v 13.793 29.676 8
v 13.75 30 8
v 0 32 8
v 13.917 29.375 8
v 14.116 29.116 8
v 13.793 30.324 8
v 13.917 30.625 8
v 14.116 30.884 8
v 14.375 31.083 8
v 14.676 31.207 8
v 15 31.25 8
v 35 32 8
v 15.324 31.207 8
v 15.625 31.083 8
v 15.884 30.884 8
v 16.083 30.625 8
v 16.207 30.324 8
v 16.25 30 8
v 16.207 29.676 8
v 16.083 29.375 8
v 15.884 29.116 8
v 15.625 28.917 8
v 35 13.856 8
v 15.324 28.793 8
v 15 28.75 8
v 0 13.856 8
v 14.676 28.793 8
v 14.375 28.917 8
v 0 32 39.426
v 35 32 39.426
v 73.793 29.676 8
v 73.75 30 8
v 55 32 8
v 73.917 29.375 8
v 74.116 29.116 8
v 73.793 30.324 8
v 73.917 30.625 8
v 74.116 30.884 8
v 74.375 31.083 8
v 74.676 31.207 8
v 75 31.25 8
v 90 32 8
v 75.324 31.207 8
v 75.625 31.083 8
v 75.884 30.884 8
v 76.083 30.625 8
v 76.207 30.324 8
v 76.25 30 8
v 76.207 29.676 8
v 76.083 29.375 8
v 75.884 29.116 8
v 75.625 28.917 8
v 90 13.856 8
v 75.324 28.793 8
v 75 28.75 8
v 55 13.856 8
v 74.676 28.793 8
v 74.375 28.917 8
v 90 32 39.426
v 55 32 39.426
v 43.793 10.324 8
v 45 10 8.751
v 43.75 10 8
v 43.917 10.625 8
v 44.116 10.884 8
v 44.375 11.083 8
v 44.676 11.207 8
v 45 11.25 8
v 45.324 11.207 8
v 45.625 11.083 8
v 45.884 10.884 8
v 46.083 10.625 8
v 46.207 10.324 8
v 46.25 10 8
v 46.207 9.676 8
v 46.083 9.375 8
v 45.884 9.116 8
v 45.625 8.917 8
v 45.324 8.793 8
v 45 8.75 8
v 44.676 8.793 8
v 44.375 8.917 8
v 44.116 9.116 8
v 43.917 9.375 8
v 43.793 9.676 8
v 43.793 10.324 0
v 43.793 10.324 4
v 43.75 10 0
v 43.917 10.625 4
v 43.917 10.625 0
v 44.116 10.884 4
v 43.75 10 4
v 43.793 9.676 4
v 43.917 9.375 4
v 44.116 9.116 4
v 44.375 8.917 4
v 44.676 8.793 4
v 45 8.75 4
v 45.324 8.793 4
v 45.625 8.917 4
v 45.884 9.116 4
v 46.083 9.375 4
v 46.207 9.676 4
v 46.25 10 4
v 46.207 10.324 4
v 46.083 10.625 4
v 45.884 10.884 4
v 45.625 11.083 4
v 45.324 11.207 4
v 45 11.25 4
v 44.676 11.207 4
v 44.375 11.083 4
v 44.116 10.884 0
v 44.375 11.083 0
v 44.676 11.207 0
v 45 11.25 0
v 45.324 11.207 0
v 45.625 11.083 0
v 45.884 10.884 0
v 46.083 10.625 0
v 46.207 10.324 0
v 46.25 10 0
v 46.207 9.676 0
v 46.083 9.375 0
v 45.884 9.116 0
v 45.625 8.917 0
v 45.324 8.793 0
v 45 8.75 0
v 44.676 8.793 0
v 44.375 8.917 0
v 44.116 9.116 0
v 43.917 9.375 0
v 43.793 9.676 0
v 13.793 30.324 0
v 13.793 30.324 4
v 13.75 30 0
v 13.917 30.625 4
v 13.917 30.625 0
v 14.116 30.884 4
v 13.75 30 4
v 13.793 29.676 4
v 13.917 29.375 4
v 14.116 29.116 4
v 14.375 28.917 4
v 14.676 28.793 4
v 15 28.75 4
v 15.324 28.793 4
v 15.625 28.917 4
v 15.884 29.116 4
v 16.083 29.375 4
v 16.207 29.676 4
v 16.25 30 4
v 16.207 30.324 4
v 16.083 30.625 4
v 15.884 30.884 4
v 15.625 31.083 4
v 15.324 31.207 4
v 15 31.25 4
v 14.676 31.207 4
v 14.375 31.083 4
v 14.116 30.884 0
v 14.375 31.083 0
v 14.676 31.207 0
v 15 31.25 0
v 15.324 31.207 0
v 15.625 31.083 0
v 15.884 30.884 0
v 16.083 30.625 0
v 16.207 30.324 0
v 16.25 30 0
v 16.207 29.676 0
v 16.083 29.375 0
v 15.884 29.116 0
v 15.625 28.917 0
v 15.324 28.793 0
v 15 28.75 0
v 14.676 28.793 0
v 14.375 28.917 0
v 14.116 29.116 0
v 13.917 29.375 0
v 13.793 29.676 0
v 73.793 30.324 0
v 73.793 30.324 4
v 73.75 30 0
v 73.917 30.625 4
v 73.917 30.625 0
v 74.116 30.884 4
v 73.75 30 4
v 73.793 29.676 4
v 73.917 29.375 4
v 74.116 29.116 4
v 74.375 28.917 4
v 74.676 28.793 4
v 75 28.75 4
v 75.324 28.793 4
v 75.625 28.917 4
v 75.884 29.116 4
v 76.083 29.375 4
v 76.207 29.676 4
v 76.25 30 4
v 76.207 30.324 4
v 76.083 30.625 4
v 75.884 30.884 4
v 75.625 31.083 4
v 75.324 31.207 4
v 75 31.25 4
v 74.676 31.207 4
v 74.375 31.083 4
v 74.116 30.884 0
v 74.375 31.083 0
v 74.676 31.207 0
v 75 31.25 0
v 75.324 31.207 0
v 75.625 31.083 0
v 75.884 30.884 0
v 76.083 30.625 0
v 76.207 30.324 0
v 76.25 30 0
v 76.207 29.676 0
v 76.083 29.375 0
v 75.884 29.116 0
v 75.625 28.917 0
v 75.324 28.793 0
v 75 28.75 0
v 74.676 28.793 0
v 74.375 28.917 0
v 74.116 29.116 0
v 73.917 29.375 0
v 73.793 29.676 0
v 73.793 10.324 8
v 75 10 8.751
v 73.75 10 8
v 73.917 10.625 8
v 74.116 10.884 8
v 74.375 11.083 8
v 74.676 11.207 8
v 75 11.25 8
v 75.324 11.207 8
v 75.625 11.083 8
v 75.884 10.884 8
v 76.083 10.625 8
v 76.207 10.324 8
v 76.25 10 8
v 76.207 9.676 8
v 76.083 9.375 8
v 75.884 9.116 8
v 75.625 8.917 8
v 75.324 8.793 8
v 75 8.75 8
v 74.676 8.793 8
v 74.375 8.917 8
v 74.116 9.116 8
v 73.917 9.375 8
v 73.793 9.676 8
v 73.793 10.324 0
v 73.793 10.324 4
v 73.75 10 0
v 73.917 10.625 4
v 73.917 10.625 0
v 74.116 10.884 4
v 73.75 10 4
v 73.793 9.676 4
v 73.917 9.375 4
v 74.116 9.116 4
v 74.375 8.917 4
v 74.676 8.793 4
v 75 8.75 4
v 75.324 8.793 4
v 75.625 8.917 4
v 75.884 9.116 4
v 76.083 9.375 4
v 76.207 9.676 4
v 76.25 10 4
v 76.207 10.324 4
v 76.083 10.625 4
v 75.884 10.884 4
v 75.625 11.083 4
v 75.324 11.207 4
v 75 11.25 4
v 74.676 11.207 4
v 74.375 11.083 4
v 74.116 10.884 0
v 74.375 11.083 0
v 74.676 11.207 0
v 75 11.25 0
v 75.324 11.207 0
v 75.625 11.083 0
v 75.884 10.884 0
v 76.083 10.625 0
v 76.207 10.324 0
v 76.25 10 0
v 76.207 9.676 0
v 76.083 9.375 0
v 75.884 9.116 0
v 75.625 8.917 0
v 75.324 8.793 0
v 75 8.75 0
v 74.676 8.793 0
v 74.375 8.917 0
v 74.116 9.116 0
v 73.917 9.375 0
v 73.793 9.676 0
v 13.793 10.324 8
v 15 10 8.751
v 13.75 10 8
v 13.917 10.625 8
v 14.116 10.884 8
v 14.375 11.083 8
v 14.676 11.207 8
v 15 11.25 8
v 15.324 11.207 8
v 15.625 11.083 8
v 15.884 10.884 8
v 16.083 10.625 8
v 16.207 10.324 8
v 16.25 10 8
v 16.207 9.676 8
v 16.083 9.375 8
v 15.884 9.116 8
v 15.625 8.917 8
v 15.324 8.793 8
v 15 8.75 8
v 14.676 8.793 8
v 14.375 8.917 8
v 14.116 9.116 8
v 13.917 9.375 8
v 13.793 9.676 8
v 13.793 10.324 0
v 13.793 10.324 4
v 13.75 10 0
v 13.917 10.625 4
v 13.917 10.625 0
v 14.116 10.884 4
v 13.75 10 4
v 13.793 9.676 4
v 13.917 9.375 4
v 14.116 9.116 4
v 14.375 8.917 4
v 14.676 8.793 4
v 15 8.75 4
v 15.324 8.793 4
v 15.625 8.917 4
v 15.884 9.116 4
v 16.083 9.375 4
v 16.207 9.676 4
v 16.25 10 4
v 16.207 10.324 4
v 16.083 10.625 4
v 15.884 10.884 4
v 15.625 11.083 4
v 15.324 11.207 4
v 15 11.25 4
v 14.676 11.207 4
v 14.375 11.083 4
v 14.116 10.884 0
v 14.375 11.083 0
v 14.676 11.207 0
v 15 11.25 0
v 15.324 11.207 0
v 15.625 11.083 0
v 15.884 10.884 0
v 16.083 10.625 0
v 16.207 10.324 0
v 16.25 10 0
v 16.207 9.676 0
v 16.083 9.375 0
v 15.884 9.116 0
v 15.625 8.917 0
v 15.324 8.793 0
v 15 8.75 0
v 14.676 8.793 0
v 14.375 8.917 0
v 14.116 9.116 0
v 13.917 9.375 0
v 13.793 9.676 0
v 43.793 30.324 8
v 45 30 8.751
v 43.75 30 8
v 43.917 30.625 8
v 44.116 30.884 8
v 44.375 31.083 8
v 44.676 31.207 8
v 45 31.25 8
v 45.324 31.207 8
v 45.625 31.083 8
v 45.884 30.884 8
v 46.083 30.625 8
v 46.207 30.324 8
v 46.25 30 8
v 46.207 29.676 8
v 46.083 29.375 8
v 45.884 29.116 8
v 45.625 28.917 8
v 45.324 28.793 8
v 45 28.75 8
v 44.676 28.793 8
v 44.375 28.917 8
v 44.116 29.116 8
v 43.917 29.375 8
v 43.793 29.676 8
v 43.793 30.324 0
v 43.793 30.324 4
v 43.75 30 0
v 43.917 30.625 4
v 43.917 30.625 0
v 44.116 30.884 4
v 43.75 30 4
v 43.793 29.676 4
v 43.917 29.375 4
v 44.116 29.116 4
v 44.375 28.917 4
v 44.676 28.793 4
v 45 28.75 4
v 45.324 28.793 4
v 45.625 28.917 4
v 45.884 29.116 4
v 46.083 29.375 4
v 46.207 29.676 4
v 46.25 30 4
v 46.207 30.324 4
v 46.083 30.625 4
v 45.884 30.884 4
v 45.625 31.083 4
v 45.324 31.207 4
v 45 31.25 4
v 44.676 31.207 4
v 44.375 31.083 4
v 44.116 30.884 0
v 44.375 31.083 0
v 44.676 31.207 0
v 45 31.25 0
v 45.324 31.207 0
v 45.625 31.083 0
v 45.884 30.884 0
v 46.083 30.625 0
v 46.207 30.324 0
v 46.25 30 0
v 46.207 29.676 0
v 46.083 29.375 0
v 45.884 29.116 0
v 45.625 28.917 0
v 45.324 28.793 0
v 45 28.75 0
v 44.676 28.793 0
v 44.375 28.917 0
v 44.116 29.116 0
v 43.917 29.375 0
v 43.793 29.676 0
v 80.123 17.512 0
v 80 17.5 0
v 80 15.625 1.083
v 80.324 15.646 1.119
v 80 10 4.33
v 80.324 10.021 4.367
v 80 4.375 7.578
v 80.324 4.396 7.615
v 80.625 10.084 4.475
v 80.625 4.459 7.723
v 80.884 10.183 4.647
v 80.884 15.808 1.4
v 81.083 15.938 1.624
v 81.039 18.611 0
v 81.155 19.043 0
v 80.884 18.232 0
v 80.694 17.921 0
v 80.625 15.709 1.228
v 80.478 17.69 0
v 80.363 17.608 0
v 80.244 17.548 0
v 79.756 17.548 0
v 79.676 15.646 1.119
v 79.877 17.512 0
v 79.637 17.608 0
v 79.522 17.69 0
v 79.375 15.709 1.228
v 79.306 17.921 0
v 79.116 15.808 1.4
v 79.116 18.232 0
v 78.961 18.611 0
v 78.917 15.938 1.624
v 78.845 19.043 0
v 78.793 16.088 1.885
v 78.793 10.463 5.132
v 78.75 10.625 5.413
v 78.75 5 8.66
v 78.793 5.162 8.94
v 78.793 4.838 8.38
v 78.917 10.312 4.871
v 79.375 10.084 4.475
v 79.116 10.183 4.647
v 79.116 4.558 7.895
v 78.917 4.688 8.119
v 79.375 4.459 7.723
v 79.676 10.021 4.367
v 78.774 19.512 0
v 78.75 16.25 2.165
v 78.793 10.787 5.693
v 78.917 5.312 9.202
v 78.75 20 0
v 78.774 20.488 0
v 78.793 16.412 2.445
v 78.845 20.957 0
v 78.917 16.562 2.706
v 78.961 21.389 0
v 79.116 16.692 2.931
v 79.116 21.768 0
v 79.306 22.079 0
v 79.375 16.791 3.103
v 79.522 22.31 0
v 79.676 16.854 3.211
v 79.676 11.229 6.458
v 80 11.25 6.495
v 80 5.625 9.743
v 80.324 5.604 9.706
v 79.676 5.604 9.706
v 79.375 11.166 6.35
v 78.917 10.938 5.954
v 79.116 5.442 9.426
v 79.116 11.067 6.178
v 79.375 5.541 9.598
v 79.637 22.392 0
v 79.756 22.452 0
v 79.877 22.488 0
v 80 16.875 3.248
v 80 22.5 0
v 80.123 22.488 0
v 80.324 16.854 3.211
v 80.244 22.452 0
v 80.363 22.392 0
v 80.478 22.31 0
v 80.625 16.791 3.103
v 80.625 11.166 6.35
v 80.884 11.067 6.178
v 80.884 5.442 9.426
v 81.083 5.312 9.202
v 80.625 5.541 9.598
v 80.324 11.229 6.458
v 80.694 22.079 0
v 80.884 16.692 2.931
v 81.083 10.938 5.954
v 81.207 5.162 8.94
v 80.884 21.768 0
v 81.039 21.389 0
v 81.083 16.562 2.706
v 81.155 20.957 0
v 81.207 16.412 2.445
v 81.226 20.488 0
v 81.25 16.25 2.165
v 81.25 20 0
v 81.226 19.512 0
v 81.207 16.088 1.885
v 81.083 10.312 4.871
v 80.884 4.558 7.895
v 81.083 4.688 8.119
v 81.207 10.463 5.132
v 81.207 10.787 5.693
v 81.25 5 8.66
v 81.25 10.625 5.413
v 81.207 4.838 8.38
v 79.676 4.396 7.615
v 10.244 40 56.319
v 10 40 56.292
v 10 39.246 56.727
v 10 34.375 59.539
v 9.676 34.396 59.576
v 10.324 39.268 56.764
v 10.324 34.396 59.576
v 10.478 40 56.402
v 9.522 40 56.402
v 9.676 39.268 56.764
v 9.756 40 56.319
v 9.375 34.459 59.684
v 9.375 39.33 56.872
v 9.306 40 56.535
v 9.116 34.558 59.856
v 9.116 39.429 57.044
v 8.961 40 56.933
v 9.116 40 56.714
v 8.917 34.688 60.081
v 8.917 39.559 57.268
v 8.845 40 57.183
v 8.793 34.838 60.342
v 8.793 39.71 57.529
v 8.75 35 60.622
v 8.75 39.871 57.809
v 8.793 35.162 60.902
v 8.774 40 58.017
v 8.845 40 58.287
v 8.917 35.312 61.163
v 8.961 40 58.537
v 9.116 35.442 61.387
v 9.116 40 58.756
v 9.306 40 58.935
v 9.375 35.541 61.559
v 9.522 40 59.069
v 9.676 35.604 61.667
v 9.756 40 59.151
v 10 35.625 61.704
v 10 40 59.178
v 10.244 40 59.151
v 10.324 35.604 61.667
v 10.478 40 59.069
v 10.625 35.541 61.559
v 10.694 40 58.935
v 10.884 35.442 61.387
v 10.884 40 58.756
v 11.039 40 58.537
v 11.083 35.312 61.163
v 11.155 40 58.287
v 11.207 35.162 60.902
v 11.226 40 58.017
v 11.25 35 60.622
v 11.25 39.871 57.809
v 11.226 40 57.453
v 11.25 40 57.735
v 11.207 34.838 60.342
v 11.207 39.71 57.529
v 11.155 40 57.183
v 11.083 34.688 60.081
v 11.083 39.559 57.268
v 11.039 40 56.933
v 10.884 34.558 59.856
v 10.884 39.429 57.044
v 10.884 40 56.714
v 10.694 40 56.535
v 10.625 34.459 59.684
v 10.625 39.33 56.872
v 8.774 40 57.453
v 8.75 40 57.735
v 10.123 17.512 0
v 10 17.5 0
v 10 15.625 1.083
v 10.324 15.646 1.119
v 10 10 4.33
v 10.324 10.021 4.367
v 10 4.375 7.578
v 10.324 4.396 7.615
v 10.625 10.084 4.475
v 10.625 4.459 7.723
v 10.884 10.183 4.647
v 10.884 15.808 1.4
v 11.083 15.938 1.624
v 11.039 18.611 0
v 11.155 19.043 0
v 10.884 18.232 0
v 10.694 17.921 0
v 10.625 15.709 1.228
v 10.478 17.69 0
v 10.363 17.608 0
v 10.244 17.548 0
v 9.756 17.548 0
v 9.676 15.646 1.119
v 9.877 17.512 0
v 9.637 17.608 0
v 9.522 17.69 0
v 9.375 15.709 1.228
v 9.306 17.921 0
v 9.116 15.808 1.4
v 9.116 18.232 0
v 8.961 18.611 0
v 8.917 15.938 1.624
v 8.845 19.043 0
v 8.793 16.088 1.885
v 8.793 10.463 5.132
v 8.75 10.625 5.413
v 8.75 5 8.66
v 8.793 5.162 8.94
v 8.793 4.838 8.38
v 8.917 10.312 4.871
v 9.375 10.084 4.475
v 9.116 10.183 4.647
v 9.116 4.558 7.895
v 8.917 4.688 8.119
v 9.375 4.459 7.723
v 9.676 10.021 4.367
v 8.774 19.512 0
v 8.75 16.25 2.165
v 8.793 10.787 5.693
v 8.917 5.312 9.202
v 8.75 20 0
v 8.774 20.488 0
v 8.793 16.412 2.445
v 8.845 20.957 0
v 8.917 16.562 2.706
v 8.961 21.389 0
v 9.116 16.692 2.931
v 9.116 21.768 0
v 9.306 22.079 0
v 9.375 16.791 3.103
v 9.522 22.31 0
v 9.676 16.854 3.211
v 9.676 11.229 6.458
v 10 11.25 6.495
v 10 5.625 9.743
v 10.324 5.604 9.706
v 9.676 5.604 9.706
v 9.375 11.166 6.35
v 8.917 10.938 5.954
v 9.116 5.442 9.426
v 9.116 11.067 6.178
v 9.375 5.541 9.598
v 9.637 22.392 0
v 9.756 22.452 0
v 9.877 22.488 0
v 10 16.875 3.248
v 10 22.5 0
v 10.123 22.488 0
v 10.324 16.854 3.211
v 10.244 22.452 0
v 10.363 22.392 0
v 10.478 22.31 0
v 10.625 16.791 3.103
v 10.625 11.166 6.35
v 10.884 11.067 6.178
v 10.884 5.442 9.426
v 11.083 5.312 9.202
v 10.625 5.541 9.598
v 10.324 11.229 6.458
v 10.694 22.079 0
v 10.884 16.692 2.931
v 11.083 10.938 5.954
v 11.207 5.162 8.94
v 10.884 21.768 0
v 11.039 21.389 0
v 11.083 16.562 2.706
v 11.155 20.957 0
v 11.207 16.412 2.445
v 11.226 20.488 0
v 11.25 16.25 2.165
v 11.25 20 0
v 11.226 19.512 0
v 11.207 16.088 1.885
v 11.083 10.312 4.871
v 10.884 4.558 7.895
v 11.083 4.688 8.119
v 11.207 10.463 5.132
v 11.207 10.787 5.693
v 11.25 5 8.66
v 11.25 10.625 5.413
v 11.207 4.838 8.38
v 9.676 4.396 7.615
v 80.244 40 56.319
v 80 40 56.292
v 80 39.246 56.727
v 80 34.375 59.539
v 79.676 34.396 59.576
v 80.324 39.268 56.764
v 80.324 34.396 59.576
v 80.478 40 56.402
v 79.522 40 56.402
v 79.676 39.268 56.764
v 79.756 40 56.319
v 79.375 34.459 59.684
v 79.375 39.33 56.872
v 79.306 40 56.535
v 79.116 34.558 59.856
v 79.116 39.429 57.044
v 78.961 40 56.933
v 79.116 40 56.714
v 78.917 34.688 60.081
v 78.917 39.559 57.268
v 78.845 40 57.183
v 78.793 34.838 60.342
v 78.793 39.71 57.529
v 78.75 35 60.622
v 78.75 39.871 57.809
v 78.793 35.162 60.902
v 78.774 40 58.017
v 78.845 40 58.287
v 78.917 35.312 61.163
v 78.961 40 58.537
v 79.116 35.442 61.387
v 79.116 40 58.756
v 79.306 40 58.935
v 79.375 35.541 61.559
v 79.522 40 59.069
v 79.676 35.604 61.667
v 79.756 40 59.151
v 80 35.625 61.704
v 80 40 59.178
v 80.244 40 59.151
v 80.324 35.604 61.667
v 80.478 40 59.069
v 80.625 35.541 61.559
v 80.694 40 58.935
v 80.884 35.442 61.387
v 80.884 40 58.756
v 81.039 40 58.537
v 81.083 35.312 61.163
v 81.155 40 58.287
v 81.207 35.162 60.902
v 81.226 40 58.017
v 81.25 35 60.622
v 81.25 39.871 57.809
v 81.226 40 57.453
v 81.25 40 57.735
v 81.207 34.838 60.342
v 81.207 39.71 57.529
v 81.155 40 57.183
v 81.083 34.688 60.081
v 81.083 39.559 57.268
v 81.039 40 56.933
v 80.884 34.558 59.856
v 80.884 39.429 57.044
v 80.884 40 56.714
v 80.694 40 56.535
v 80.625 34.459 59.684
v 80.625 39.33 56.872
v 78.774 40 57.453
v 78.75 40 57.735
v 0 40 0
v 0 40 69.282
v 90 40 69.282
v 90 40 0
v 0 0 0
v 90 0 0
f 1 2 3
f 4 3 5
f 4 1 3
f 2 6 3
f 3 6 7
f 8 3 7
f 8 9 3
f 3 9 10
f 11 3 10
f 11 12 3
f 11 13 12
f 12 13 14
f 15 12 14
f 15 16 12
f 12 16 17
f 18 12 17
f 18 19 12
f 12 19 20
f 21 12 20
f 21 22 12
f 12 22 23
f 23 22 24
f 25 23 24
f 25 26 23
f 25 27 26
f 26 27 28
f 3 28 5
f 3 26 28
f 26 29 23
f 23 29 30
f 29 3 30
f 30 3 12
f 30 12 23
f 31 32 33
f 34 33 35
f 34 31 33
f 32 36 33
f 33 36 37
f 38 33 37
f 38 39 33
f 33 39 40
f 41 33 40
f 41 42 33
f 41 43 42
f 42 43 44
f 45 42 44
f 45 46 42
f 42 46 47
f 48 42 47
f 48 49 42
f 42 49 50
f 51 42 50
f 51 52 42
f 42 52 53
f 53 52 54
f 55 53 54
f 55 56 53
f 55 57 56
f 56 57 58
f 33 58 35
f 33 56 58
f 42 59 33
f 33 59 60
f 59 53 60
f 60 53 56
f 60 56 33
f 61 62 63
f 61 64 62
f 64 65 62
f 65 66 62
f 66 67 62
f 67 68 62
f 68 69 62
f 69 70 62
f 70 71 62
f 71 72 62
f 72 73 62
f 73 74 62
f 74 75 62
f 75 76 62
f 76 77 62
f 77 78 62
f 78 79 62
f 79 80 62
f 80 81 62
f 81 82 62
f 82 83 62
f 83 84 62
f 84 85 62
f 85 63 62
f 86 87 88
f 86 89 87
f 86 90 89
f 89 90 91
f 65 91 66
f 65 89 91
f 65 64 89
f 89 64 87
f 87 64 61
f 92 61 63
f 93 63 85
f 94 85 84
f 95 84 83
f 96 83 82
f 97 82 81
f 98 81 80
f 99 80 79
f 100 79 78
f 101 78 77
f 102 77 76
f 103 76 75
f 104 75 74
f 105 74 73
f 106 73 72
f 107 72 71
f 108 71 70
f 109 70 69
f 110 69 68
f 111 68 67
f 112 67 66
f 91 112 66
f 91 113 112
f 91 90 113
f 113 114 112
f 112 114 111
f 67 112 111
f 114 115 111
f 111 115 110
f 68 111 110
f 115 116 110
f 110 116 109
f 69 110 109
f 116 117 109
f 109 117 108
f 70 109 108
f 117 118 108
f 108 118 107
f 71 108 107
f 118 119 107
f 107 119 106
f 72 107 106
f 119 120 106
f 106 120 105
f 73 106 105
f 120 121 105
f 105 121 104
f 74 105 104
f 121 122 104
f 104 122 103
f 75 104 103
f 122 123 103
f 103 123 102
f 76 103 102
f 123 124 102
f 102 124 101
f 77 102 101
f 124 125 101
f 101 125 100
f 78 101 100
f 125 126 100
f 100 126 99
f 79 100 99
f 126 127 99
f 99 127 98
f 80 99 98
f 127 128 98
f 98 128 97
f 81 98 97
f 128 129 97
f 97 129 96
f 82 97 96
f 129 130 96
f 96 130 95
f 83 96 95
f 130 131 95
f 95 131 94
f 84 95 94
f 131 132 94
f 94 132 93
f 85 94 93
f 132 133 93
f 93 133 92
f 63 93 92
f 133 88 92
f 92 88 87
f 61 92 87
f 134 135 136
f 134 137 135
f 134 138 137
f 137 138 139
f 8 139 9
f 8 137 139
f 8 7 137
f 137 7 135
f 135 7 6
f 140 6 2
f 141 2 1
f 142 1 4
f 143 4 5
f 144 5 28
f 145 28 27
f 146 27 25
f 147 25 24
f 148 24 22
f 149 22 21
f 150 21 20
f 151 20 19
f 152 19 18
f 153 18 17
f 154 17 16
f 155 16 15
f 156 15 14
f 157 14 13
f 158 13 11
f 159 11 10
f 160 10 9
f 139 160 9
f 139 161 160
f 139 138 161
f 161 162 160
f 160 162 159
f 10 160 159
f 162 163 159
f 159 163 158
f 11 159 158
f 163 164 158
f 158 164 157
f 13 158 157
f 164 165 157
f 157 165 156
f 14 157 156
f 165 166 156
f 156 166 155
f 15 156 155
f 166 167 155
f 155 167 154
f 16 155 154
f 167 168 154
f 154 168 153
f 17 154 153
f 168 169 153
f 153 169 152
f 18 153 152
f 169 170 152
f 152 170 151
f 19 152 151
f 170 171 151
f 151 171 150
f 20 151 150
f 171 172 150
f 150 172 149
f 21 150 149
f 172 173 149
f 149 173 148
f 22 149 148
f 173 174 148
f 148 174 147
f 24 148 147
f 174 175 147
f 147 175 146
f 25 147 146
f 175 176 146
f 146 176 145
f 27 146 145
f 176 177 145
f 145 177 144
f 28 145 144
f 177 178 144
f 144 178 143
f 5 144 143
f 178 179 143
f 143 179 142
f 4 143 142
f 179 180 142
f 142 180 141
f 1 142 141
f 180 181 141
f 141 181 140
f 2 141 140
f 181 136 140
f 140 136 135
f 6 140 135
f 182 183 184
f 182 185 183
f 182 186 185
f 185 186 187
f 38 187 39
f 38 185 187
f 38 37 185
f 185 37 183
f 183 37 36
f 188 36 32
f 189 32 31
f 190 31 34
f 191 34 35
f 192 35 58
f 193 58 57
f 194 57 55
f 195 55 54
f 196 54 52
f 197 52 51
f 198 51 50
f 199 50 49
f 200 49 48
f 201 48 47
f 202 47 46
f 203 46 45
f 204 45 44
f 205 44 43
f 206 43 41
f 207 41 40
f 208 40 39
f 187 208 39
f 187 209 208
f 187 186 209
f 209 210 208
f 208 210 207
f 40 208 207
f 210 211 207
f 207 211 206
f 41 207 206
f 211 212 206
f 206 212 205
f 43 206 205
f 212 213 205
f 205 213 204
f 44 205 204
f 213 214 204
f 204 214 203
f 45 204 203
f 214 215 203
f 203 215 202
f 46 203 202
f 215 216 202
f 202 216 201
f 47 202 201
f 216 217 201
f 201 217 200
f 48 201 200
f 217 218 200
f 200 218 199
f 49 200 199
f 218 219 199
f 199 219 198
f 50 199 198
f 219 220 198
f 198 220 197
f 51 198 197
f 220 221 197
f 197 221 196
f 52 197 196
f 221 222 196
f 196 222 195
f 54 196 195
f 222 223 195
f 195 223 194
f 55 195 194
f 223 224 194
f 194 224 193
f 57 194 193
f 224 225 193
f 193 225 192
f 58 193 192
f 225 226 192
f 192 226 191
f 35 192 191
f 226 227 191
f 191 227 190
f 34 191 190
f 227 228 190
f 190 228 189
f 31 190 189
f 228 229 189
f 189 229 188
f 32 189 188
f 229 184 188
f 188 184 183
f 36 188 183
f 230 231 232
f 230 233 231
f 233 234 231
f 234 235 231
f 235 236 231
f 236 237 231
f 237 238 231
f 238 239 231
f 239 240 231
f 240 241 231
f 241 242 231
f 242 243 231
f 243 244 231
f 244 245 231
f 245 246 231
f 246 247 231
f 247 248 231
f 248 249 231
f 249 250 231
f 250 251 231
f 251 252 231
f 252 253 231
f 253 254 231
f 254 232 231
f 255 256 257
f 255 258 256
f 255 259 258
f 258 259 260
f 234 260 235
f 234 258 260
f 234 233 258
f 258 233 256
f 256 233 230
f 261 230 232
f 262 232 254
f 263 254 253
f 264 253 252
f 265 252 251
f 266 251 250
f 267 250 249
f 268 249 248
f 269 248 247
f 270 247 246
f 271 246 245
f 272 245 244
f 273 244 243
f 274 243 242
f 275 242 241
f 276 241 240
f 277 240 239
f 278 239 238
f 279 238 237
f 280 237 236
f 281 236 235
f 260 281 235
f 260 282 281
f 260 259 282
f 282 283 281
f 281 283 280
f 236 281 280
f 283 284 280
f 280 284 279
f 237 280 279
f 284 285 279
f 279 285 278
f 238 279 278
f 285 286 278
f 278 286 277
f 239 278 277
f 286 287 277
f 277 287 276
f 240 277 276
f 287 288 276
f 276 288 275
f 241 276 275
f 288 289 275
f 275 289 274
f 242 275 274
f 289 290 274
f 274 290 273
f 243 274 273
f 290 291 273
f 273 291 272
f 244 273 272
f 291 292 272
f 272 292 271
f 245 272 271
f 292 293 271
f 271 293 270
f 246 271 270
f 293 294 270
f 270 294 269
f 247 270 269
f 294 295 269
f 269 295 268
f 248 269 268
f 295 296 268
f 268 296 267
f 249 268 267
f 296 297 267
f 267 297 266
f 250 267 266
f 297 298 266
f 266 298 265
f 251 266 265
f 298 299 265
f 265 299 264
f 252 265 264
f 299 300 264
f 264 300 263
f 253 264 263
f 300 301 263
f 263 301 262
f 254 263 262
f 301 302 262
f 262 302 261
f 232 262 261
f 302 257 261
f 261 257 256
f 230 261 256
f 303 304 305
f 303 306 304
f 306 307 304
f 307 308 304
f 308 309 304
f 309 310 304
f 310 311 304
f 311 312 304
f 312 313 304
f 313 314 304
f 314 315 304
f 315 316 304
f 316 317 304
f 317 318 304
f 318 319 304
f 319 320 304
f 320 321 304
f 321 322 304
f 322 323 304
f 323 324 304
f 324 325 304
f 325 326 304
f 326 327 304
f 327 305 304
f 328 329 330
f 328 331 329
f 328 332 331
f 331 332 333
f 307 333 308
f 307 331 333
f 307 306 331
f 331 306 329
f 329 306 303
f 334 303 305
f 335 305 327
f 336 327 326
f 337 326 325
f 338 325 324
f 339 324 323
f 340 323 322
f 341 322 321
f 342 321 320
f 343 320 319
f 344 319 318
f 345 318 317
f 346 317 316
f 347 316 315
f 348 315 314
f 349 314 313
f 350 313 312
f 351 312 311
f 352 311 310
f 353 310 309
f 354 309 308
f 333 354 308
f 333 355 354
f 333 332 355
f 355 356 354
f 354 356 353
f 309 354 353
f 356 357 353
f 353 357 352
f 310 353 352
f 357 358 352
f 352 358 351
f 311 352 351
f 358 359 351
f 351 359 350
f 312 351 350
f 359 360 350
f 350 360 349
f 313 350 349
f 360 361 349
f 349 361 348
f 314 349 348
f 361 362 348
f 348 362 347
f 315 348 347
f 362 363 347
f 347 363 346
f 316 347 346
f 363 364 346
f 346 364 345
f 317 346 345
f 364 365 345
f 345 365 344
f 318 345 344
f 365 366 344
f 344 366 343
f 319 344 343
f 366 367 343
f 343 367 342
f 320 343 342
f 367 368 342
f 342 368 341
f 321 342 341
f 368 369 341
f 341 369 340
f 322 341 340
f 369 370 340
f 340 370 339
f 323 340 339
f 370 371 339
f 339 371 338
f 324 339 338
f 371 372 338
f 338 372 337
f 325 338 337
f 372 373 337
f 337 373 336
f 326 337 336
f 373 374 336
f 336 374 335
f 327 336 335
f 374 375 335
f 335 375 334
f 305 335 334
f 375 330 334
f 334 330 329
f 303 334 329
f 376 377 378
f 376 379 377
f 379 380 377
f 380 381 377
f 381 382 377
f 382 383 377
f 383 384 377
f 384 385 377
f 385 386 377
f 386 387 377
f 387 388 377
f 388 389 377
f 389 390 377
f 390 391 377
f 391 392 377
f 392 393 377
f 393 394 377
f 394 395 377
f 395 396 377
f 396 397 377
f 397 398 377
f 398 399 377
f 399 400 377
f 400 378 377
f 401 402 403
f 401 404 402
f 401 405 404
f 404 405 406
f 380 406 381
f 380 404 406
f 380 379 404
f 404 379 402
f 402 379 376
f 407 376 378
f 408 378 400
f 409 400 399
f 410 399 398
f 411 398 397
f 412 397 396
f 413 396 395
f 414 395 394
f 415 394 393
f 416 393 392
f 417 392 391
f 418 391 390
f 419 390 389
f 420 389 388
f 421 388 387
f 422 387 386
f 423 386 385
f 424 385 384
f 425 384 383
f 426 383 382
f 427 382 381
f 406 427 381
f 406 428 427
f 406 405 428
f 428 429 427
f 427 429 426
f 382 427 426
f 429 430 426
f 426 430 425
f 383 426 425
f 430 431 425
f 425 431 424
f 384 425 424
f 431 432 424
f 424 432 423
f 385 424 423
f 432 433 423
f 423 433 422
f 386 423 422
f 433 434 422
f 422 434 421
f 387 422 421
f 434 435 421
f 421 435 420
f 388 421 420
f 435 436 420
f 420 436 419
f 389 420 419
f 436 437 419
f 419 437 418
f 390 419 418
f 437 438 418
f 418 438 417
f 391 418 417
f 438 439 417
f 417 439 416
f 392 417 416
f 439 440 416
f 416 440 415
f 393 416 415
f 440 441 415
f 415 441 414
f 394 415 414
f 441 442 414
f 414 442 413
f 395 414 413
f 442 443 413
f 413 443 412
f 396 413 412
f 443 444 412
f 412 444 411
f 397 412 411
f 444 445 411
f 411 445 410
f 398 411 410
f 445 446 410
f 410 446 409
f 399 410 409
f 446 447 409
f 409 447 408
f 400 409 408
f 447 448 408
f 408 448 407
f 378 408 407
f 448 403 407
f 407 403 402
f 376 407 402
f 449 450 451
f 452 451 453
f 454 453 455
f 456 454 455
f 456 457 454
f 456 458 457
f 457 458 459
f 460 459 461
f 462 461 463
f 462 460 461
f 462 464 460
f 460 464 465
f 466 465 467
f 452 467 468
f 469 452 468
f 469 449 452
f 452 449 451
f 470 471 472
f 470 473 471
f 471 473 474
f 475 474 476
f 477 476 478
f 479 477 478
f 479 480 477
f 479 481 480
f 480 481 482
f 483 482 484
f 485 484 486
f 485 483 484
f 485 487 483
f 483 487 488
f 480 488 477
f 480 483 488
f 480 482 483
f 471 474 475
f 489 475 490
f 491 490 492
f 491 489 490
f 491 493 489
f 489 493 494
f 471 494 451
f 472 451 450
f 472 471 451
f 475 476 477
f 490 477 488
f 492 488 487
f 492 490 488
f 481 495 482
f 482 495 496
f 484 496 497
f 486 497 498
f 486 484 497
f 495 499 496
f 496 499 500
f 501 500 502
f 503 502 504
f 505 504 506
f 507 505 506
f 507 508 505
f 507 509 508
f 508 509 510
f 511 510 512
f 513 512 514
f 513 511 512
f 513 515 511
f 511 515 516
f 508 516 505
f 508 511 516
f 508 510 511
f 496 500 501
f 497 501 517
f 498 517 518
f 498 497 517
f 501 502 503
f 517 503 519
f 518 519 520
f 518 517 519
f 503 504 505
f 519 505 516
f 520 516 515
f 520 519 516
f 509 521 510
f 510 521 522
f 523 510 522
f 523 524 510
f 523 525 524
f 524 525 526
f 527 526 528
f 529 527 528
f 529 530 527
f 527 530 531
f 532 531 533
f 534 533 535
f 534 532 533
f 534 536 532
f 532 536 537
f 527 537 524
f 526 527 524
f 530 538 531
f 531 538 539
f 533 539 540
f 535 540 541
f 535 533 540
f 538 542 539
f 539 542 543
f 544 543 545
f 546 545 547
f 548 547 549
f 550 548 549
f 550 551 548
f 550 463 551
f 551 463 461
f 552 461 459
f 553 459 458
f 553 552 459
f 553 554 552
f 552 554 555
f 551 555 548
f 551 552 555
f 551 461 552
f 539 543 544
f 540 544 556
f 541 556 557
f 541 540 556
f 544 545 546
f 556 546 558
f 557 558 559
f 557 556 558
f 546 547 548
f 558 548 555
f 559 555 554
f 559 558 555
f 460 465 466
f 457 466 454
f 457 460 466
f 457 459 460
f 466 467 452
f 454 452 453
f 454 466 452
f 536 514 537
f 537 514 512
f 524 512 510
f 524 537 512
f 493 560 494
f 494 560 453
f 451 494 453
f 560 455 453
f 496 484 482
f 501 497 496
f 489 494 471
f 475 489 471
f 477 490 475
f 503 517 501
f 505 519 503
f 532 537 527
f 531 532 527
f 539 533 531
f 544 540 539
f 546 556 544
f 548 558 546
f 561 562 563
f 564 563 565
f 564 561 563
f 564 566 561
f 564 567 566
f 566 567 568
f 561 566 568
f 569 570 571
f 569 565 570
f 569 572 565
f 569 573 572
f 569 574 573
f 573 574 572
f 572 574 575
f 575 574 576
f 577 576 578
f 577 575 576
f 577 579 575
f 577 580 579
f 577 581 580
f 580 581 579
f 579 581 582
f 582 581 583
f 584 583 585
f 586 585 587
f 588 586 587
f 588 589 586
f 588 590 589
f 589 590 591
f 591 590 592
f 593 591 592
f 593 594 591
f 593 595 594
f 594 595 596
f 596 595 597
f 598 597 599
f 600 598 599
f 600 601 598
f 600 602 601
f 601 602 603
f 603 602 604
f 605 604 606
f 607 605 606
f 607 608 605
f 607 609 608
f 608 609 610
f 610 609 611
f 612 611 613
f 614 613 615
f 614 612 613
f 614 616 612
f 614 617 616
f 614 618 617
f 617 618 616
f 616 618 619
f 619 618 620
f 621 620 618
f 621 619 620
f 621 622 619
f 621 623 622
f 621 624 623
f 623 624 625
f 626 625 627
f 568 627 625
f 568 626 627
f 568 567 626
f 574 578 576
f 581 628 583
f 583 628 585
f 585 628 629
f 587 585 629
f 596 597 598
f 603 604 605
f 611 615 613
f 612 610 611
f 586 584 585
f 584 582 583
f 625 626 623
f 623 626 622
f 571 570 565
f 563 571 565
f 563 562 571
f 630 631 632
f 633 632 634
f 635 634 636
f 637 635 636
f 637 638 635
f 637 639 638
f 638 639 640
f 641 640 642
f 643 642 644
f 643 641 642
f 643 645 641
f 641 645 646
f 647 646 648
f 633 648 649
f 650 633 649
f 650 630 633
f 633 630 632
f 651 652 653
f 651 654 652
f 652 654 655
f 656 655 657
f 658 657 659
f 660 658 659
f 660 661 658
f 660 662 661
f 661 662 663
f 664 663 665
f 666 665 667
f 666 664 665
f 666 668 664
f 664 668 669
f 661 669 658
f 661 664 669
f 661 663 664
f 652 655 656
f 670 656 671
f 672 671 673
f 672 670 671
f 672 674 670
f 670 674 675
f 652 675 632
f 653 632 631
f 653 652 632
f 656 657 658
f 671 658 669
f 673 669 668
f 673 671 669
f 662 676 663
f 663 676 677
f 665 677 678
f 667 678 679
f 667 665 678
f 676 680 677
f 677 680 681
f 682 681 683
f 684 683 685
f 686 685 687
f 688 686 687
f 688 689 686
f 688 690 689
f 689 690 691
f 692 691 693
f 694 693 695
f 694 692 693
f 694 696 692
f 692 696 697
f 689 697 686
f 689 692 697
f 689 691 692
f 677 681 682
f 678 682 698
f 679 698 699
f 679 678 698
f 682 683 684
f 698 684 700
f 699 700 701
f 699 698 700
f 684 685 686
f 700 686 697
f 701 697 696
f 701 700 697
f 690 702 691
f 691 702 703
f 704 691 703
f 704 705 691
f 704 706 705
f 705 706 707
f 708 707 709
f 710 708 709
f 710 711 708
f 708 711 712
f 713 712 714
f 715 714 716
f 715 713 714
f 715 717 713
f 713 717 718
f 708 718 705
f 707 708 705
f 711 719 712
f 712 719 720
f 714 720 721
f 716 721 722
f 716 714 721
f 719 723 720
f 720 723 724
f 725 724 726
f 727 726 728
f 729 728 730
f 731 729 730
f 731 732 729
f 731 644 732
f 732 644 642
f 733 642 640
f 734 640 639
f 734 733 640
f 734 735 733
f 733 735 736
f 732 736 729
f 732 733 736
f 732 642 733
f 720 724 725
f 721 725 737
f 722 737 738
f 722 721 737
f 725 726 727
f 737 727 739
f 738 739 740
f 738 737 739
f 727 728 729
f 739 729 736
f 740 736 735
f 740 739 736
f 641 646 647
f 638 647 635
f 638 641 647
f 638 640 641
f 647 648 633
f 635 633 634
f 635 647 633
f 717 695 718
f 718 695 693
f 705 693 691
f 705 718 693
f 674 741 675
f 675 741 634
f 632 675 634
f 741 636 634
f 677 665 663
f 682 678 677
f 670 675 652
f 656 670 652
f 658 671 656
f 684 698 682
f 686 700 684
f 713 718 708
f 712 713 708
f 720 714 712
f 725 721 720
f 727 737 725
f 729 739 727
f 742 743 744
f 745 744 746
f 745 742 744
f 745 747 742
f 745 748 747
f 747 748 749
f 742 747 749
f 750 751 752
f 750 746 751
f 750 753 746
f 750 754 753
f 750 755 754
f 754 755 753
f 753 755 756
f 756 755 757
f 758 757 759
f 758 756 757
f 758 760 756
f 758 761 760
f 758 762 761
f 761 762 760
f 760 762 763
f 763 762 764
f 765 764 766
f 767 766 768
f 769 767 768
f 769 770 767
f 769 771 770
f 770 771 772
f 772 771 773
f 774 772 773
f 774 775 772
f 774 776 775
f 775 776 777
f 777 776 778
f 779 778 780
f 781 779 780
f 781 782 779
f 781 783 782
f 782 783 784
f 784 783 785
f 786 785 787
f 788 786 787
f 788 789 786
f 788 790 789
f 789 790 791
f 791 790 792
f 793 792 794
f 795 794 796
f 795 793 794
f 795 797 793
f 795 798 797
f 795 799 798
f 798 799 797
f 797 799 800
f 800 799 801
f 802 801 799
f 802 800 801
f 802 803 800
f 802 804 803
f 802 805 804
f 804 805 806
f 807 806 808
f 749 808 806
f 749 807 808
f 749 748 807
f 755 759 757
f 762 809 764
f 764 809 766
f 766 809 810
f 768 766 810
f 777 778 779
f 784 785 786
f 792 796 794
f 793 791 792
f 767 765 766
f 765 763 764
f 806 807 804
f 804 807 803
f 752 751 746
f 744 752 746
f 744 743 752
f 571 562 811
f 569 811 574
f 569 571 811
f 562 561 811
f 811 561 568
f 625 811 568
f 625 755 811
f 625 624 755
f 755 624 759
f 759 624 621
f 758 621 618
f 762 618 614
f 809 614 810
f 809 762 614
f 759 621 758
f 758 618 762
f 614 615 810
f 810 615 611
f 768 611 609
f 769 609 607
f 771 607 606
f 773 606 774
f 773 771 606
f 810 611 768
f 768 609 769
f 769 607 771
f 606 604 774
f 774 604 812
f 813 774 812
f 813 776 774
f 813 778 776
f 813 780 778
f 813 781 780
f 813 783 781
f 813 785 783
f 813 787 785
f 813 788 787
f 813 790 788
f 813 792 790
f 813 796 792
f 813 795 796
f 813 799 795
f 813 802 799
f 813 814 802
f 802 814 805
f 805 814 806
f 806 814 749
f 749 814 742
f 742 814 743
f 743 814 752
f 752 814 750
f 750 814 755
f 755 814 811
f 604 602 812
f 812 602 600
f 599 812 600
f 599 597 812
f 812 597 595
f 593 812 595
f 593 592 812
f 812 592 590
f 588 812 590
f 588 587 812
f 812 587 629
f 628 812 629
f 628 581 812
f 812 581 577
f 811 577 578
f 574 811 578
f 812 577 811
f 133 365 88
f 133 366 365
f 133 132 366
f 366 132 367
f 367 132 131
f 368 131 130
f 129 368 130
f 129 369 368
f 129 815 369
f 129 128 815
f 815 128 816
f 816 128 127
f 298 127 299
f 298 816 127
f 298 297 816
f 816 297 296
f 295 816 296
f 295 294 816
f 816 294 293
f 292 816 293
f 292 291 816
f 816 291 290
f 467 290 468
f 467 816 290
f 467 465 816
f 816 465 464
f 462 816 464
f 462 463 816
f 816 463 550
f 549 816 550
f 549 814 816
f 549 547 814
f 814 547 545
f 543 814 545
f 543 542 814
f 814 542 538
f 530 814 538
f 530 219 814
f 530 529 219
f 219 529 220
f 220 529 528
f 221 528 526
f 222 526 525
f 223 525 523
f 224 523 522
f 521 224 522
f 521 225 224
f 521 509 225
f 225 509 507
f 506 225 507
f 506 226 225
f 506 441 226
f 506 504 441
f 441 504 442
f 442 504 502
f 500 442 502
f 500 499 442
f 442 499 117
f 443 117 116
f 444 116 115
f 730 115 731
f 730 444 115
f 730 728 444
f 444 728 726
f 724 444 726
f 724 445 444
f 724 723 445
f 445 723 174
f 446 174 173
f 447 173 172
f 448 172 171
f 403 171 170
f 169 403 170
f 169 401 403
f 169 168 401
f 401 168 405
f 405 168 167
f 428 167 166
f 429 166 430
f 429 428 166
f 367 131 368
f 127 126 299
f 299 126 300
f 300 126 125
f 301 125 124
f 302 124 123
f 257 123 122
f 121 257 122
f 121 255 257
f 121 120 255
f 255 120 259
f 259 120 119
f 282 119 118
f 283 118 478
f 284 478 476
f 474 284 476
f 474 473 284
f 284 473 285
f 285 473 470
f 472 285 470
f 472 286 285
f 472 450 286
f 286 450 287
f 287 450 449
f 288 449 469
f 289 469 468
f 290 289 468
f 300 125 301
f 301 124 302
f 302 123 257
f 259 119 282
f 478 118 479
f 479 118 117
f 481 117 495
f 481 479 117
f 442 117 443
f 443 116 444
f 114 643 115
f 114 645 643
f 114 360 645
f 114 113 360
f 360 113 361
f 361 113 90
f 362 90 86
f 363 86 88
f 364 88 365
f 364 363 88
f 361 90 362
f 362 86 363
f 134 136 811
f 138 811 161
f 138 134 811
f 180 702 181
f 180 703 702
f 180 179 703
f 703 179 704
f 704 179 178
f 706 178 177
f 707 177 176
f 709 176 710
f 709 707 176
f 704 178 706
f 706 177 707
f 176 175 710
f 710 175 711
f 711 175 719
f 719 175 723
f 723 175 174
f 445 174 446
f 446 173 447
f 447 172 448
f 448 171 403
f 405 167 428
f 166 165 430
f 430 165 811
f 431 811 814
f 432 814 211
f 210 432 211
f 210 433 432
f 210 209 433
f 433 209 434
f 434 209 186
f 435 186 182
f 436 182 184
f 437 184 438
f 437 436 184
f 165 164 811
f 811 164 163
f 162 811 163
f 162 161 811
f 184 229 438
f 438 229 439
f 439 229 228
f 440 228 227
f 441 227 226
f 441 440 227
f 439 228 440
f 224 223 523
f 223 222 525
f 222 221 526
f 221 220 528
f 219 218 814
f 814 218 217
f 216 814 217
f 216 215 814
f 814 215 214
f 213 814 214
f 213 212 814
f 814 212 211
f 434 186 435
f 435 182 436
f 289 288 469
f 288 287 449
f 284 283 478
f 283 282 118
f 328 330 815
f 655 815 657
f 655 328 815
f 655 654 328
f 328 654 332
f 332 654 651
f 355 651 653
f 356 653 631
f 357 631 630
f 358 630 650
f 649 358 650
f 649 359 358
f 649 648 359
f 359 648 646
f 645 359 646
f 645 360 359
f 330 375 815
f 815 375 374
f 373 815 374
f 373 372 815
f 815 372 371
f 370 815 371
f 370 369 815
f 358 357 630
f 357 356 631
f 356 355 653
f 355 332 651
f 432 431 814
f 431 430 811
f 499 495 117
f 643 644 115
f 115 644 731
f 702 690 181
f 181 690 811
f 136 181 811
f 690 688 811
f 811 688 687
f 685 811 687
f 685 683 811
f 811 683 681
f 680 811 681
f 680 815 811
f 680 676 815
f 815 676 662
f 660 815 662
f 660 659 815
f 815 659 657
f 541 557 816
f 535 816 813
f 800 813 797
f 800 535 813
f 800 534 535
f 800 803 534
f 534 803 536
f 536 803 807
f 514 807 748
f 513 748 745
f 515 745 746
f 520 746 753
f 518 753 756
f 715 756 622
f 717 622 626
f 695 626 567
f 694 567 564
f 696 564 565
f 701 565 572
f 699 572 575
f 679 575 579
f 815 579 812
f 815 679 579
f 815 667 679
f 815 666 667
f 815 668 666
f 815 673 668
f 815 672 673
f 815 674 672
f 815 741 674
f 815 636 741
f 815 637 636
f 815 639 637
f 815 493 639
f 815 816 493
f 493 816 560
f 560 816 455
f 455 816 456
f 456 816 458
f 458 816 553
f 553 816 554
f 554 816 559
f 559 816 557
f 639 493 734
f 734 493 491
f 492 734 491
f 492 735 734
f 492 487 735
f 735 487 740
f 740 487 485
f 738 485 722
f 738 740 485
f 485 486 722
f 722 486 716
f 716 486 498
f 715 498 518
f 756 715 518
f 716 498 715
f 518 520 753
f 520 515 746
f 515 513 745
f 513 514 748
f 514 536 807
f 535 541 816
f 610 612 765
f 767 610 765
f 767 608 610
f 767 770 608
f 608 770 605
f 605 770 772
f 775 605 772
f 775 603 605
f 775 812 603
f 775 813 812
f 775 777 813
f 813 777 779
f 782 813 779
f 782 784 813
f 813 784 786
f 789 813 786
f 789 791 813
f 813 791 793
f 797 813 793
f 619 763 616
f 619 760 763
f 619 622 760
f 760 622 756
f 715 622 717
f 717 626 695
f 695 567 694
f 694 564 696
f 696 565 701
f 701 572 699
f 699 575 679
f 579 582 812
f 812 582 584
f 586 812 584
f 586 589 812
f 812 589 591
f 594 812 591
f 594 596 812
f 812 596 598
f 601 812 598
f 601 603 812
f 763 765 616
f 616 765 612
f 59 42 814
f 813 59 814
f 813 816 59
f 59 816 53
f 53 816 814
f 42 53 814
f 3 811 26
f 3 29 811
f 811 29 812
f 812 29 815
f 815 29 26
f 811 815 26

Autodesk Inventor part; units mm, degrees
ref_plane "YZ Plane" through (0, 0, 0) normal (1, 0, 0) x (0, 1, 0)
ref_plane "XZ Plane" through (0, 0, 0) normal (0, 1, 0) x (-1, 0, 0)
ref_plane "XY Plane" through (0, 0, 0) normal (0, 0, 1) x (1, 0, 0)
sketch "スケッチ1" plane through (0, 0, 0) normal (1, 0, 0) x (0, 1, 0)
  line L0 (0, 0) -> (40, 69.282)
  line L1 (0, 0) -> (80, 0) construction
  line L2 (40, 69.282) -> (40, 0)
  line L3 (40, 0) -> (0, 0)
  dimension "d0" = 80
  dimension "d1" = 60
  dimension "d2" = 30
extrude "押し出し1" add sketch "スケッチ1" along normal blind 90
sketch "スケッチ2" plane through (0, 0, 0) normal (0, -0.866, 0.5) x (1, 0, 0)
  line L0 (0, 80) -> (10, 80)
  line L1 (10, 80) -> (10, 70)
  line L2 (10, 70) -> (0, 70)
  line L3 (0, 70) -> (0, 80)
  line L4 (90, 80) -> (80, 80)
  line L5 (80, 80) -> (80, 70)
  line L6 (80, 70) -> (90, 70)
  line L7 (90, 70) -> (90, 80)
  line L8 (90, 0) -> (80, 0)
  line L9 (80, 0) -> (80, 10)
  line L10 (80, 10) -> (90, 10)
  line L11 (90, 10) -> (90, 0)
  line L12 (0, 0) -> (10, 0)
  line L13 (10, 0) -> (10, 10)
  line L14 (10, 10) -> (0, 10)
  line L15 (0, 10) -> (0, 0)
  dimension "d5" = 10
  dimension "d6" = 10
  dimension "d7" = 10
  dimension "d8" = 10
  dimension "d9" = 10
  dimension "d10" = 10
  dimension "d11" = 10
  dimension "d12" = 10
hole "穴1" at (10, 35, 60.6218) at (10, 5, 8.6603) at (80, 5, 8.6603) at (80, 35, 60.6218) direction (0, 0.866, -0.5) diameter 2.5 depth 20 tip angle 118
sketch "スケッチ3" plane through (0, 0, 0) normal (0, 0, -1) x (-1, 0, 0)
  line L0 (-90, 40) -> (-75, 40)
  line L1 (-75, 40) -> (-75, 30)
  line L2 (-75, 30) -> (-90, 30)
  line L3 (-90, 30) -> (-90, 40)
  line L4 (-90, 0) -> (-75, 0)
  line L5 (-75, 0) -> (-75, 10)
  line L6 (-75, 10) -> (-90, 10)
  line L7 (-90, 10) -> (-90, 0)
  line L8 (0, 40) -> (-15, 40)
  line L9 (-15, 40) -> (-15, 30)
  line L10 (-15, 30) -> (0, 30)
  line L11 (0, 30) -> (0, 40)
  line L12 (0, 0) -> (-15, 0)
  line L13 (-15, 0) -> (-15, 10)
  line L14 (-15, 10) -> (0, 10)
  line L15 (0, 10) -> (0, 0)
  line L16 (-75, 30) -> (-15, 30)
  line L17 (-15, 10) -> (-75, 10)
  point P0 (-45, 10)
  point P1 (-45, 30)
  dimension "d20" = 15
  dimension "d21" = 10
  dimension "d23" = 15
  dimension "d24" = 10
  dimension "d25" = 15
  dimension "d26" = 10
hole "穴2" at (75, 30, 0) at (75, 10, 0) at (15, 30, 0) at (15, 10, 0) at (45, 10, 0) at (45, 30, 0) direction (0, 0, 1) diameter 2.5 depth 8 tip angle 118
sketch "スケッチ4" plane through (90, 0, 0) normal (1, 0, 0) x (0, 0, -1)
  line L0 (-69.282, 40) -> (0, 0) projected
  line L1 (0, 0) -> (0, 40) projected
  line L2 (0, 40) -> (-69.282, 40) projected
  line L3 (-8, 40) -> (-8, 4.6188)
  line L4 (0, 32) -> (-55.4256, 32)
  line L5 (-53.282, 40) -> (0, 9.2376)
  point P0 (-39.4256, 32)
  point P1 (-8, 32)
  point P2 (-8, 13.8564)
  dimension "d34" = 8
  dimension "d35" = 8
  dimension "d36" = 8
extrude "押し出し2" cut sketch "スケッチ4" against normal blind 35 contours L4 L3 L5
sketch "スケッチ5" plane through (0, 0, 0) normal (-1, 0, 0) x (0, 0, 1)
  line L0 (0, 0) -> (69.282, 40) projected
  line L1 (69.282, 40) -> (0, 40) projected
  line L2 (0, 40) -> (0, 0) projected
  line L3 (8, 40) -> (8, 33.1308)
  line L4 (8, 33.1308) -> (8, 4.6188)
  line L5 (0, 32) -> (55.2982, 32)
  line L6 (0, 9.2376) -> (53.282, 40)
  point P0 (39.4256, 32)
  point P1 (8, 32)
  point P2 (8, 13.8564)
  dimension "d39" = 8
  dimension "d40" = 8
  dimension "d41" = 8
extrude "押し出し3" cut sketch "スケッチ5" against normal blind 35 contours L4 L5 L6
properties part number "知能ロボコン土台"
